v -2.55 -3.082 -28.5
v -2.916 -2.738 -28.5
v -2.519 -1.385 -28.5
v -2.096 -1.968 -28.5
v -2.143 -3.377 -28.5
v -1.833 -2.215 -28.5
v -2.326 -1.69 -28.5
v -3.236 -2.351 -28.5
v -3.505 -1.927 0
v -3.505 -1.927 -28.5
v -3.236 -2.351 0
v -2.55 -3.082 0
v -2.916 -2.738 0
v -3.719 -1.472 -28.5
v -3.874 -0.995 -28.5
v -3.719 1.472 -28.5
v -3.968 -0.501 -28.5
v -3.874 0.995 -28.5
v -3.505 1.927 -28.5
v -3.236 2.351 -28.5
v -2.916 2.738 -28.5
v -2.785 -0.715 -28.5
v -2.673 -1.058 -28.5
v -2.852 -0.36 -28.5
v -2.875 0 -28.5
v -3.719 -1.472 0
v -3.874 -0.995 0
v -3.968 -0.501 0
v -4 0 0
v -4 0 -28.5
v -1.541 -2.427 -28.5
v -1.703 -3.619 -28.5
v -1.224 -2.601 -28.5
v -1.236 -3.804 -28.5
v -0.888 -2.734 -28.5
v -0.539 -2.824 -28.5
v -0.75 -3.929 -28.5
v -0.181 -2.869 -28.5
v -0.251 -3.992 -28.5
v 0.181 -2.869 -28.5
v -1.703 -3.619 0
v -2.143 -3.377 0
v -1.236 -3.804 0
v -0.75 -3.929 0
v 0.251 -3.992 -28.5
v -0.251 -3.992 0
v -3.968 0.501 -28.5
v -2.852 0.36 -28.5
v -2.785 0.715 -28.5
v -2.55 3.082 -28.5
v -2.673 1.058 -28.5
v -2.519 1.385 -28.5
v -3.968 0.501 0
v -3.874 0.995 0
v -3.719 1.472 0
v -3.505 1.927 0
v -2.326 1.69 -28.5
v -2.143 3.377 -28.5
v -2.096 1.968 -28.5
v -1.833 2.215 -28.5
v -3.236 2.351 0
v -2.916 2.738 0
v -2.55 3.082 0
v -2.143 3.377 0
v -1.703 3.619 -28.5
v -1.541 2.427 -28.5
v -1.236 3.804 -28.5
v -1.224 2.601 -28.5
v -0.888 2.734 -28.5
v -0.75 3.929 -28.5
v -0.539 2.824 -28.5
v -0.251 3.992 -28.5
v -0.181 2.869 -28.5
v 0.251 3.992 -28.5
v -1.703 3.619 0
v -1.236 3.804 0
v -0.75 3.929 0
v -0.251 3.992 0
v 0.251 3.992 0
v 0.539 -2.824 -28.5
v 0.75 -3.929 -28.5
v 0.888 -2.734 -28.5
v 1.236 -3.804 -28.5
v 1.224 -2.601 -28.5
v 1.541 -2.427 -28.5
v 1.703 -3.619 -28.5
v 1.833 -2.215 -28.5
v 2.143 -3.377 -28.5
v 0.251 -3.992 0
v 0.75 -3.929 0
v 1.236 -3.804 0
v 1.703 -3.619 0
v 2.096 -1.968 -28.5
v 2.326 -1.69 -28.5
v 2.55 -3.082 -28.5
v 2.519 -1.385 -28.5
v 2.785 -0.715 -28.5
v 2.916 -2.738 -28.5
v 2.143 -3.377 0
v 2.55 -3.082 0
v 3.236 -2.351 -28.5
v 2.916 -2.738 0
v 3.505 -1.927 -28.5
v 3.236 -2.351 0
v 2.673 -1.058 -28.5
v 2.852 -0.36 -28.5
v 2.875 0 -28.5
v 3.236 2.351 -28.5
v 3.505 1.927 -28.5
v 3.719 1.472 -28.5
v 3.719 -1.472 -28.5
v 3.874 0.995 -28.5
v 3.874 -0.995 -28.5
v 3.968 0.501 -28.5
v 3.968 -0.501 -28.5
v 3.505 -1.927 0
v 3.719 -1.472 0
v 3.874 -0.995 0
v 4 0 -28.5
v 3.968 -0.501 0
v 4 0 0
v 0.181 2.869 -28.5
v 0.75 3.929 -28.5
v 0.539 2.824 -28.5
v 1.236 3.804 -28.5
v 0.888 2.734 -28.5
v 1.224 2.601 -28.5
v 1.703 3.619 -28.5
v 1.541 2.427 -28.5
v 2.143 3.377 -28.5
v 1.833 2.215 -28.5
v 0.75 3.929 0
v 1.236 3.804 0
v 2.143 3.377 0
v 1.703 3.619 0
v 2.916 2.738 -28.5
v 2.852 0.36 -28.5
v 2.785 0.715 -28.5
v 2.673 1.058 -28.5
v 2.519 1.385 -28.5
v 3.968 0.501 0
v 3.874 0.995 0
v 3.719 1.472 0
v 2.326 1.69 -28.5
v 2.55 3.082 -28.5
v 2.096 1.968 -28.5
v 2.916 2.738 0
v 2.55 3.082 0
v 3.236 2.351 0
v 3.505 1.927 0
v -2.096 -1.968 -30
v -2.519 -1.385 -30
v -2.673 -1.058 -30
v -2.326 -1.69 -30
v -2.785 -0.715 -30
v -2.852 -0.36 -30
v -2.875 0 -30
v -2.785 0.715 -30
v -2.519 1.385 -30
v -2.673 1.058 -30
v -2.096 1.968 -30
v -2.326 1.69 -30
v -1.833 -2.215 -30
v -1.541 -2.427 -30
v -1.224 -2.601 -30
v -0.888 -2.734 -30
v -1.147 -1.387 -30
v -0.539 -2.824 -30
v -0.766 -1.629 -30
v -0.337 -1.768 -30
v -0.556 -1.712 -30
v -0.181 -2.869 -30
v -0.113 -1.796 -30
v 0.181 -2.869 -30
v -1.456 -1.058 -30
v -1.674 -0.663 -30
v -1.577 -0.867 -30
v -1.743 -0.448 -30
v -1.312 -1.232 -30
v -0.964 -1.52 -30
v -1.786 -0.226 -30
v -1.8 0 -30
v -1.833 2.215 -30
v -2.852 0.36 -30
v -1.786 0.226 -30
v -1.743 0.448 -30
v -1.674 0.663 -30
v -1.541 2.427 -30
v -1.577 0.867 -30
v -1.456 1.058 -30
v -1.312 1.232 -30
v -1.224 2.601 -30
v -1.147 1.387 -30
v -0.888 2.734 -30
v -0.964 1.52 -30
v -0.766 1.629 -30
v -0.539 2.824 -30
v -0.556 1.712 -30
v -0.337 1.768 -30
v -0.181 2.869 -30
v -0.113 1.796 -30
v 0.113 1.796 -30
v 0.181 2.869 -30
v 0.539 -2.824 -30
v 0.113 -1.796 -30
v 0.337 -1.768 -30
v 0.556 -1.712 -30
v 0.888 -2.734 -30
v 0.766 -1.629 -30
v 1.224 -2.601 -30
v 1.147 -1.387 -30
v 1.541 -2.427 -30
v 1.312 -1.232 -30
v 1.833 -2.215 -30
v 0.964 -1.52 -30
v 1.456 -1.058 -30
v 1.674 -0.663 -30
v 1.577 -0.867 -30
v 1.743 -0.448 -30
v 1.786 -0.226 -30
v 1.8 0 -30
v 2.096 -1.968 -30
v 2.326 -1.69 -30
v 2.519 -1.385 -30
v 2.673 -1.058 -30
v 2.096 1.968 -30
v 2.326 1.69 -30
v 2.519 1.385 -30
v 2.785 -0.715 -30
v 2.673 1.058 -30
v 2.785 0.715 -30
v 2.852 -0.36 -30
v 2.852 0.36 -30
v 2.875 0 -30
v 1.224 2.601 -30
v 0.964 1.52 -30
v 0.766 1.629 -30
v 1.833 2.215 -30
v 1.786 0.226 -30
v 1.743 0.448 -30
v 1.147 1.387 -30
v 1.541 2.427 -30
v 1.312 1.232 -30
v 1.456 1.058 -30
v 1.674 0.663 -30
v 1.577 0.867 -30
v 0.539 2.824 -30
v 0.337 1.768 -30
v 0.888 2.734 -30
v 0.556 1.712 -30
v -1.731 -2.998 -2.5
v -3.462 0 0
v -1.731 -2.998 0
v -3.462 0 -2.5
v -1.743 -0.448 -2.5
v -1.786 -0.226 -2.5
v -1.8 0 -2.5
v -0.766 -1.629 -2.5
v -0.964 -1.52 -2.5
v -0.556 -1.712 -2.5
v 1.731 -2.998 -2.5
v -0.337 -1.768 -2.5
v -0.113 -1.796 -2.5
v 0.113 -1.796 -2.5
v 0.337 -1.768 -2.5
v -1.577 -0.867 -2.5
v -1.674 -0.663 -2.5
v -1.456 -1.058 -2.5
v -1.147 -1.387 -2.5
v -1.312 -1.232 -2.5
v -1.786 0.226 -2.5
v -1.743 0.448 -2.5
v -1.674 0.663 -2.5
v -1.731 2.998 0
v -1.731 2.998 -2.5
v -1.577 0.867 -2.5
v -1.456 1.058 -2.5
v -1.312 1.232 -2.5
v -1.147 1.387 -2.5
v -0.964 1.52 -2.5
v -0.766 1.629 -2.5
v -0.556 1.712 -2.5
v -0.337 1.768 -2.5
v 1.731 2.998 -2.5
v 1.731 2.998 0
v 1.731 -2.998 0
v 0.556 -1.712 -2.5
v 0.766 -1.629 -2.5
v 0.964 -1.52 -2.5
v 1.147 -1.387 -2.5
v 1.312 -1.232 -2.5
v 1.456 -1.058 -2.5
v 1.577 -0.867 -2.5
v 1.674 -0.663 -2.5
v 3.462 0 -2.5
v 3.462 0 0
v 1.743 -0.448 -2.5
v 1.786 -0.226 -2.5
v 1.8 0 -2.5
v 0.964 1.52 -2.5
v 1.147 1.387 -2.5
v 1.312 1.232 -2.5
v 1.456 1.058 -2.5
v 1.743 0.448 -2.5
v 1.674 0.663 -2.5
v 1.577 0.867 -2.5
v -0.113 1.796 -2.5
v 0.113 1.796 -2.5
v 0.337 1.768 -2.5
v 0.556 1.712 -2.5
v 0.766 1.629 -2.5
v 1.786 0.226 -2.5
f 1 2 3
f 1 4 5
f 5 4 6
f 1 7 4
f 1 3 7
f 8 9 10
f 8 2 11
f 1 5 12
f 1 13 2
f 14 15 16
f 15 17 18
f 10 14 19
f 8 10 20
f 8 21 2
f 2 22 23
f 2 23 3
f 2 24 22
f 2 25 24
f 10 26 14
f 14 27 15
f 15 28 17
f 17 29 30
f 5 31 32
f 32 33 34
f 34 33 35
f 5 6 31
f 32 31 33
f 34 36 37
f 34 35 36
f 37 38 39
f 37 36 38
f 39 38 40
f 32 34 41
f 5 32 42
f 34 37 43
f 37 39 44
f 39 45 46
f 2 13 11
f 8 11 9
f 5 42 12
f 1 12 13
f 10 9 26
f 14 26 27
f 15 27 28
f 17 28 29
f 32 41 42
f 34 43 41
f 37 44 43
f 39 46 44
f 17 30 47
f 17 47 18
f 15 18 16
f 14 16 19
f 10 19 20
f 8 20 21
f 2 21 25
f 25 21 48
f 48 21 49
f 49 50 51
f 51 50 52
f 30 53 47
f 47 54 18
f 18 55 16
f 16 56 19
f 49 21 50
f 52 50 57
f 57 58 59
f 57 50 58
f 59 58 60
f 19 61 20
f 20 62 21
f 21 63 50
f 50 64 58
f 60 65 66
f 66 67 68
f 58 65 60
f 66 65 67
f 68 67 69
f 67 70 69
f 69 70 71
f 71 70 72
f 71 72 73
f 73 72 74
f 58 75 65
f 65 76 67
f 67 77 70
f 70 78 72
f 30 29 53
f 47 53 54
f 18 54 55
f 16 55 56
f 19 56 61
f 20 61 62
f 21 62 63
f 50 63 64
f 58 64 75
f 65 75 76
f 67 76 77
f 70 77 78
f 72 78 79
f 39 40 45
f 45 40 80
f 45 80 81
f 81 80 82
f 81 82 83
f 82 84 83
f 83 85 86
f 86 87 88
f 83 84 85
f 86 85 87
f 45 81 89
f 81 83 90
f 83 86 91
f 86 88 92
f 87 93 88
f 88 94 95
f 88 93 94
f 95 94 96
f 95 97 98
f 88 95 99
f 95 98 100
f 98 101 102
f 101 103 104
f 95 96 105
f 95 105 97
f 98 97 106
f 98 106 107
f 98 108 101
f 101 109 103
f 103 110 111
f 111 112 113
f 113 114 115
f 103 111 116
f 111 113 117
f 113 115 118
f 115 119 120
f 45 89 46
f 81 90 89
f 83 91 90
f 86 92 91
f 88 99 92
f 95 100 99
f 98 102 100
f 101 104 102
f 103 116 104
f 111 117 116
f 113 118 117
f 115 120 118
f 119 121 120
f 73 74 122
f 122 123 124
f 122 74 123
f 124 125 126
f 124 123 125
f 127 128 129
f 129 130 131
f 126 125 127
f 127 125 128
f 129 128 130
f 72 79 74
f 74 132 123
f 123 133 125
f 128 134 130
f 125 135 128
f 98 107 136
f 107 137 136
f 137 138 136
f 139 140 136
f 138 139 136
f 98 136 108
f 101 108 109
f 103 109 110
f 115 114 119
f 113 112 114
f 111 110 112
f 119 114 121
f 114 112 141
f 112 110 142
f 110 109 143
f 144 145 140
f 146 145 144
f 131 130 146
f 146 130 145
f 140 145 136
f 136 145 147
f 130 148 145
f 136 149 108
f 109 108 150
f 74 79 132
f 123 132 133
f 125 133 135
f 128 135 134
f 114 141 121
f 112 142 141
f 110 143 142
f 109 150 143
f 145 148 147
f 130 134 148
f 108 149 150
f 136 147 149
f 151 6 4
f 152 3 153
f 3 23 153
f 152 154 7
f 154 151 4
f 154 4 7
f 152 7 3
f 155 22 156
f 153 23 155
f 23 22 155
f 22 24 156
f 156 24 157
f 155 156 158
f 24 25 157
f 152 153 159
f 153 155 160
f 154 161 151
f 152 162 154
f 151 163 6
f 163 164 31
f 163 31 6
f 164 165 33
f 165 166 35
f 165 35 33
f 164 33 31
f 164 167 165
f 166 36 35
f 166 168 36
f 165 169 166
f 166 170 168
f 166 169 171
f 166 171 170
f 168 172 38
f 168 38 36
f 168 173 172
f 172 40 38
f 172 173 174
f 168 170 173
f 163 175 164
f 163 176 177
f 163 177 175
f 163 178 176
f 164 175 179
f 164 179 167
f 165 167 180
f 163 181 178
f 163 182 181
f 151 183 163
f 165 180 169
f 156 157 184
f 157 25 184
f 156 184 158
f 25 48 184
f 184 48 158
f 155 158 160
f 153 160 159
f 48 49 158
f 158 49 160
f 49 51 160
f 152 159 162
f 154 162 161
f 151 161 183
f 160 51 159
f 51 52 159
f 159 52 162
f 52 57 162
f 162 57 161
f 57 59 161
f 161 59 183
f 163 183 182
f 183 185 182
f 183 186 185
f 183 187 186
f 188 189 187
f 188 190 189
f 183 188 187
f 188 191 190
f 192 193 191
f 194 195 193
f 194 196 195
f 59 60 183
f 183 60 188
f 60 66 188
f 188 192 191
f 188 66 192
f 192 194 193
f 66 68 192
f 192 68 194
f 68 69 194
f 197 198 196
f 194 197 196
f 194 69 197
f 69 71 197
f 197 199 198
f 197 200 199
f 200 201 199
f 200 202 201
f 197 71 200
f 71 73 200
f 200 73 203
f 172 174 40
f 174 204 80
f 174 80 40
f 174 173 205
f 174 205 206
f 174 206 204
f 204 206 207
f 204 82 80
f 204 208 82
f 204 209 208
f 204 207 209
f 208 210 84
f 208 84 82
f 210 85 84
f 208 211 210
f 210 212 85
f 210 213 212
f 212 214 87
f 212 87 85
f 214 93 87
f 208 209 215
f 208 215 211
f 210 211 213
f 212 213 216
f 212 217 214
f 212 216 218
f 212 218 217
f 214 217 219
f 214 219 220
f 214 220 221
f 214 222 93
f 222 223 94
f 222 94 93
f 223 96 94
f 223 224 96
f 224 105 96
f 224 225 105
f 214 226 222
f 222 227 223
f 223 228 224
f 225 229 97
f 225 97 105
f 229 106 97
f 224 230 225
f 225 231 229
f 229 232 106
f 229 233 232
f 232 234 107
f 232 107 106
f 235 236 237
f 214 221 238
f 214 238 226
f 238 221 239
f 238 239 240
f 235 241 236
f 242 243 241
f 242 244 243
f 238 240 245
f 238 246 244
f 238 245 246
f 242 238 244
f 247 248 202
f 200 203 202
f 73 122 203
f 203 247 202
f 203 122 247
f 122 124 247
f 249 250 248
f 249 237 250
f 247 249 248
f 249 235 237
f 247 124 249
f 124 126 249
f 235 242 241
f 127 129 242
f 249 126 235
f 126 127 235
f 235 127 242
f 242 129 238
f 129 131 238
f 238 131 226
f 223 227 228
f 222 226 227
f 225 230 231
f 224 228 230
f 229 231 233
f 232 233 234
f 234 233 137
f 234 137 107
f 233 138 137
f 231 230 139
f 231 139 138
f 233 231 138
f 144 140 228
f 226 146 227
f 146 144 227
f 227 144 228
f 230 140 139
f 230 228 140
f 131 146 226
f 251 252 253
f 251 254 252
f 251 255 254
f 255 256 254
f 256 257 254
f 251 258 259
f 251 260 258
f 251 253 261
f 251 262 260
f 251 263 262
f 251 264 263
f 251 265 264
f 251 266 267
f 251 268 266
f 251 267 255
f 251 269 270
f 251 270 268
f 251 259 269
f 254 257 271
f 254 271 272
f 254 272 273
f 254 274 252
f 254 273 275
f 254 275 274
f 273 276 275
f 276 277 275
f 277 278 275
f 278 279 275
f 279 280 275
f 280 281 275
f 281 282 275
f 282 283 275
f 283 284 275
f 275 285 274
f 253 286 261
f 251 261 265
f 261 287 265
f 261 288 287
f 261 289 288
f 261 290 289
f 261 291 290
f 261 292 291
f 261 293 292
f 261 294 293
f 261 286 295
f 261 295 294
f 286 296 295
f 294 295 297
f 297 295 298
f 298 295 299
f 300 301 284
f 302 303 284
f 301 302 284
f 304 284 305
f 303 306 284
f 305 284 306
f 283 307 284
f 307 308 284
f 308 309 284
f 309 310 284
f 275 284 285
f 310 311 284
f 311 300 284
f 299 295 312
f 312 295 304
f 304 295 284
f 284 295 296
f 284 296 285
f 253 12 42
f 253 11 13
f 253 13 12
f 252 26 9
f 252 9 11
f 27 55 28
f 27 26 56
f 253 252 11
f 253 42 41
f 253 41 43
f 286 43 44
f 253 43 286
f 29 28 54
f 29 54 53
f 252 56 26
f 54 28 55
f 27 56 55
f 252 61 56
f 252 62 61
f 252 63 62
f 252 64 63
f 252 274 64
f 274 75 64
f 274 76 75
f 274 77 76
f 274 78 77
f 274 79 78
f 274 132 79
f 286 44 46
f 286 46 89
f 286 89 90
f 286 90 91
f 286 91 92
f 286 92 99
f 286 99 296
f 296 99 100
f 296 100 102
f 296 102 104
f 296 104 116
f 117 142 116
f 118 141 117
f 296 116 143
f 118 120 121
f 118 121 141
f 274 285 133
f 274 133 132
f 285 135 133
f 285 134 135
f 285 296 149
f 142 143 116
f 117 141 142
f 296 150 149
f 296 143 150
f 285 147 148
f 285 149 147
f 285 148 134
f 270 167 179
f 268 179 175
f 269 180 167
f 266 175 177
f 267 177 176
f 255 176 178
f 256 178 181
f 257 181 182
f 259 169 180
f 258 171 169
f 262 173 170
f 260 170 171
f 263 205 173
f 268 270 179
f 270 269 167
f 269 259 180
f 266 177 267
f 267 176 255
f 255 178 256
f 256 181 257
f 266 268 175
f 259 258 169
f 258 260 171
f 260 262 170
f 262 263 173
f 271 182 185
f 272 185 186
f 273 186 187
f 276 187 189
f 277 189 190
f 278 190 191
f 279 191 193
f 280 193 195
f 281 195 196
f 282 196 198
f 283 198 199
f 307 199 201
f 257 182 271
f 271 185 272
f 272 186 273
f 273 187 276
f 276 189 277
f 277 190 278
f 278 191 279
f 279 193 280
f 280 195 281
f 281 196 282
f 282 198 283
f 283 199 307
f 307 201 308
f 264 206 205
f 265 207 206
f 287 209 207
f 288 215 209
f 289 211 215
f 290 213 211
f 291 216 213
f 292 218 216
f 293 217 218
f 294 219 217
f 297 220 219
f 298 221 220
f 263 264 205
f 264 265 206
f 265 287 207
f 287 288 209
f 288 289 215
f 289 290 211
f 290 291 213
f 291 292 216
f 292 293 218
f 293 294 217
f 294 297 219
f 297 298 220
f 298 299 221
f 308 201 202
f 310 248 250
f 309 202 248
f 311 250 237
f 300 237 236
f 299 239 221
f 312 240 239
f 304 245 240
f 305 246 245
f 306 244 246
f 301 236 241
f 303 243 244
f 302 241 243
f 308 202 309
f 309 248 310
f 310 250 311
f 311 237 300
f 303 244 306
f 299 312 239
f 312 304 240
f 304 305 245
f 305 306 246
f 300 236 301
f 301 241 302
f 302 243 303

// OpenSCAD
$fn = 50;

difference() {
	union() {
		translate(v = [0, 0, -28.5]) {
			cylinder(h = 31.5, r = 4.0);
		}
		#translate(v = [0, 0, -30.0]) {
			cylinder(h = 30, r = 2.875);
		}
	}
	union() {
		translate(v = [0, 0, 0]) {
			rotate(a = [0, 0, 0]) {
				difference() {
					union() {
						translate(v = [0, 0, -2.5]) {
							linear_extrude(height = 2.5) {
								polygon(points = [[3.4619999999999997, 0.0], [1.7310000000000003, 2.9981799479017264], [-1.7309999999999992, 2.9981799479017264], [-3.4619999999999997, 4.2397272186481365e-16], [-1.7310000000000014, -2.998179947901726], [1.7309999999999977, -2.9981799479017277]]);
							}
						}
					}
					union();
				}
			}
		}
		#cylinder(h = 3, r = 5.0);
		#translate(v = [0, 0, -100.0]) {
			cylinder(h = 200, r = 1.8);
		}
	}
}
